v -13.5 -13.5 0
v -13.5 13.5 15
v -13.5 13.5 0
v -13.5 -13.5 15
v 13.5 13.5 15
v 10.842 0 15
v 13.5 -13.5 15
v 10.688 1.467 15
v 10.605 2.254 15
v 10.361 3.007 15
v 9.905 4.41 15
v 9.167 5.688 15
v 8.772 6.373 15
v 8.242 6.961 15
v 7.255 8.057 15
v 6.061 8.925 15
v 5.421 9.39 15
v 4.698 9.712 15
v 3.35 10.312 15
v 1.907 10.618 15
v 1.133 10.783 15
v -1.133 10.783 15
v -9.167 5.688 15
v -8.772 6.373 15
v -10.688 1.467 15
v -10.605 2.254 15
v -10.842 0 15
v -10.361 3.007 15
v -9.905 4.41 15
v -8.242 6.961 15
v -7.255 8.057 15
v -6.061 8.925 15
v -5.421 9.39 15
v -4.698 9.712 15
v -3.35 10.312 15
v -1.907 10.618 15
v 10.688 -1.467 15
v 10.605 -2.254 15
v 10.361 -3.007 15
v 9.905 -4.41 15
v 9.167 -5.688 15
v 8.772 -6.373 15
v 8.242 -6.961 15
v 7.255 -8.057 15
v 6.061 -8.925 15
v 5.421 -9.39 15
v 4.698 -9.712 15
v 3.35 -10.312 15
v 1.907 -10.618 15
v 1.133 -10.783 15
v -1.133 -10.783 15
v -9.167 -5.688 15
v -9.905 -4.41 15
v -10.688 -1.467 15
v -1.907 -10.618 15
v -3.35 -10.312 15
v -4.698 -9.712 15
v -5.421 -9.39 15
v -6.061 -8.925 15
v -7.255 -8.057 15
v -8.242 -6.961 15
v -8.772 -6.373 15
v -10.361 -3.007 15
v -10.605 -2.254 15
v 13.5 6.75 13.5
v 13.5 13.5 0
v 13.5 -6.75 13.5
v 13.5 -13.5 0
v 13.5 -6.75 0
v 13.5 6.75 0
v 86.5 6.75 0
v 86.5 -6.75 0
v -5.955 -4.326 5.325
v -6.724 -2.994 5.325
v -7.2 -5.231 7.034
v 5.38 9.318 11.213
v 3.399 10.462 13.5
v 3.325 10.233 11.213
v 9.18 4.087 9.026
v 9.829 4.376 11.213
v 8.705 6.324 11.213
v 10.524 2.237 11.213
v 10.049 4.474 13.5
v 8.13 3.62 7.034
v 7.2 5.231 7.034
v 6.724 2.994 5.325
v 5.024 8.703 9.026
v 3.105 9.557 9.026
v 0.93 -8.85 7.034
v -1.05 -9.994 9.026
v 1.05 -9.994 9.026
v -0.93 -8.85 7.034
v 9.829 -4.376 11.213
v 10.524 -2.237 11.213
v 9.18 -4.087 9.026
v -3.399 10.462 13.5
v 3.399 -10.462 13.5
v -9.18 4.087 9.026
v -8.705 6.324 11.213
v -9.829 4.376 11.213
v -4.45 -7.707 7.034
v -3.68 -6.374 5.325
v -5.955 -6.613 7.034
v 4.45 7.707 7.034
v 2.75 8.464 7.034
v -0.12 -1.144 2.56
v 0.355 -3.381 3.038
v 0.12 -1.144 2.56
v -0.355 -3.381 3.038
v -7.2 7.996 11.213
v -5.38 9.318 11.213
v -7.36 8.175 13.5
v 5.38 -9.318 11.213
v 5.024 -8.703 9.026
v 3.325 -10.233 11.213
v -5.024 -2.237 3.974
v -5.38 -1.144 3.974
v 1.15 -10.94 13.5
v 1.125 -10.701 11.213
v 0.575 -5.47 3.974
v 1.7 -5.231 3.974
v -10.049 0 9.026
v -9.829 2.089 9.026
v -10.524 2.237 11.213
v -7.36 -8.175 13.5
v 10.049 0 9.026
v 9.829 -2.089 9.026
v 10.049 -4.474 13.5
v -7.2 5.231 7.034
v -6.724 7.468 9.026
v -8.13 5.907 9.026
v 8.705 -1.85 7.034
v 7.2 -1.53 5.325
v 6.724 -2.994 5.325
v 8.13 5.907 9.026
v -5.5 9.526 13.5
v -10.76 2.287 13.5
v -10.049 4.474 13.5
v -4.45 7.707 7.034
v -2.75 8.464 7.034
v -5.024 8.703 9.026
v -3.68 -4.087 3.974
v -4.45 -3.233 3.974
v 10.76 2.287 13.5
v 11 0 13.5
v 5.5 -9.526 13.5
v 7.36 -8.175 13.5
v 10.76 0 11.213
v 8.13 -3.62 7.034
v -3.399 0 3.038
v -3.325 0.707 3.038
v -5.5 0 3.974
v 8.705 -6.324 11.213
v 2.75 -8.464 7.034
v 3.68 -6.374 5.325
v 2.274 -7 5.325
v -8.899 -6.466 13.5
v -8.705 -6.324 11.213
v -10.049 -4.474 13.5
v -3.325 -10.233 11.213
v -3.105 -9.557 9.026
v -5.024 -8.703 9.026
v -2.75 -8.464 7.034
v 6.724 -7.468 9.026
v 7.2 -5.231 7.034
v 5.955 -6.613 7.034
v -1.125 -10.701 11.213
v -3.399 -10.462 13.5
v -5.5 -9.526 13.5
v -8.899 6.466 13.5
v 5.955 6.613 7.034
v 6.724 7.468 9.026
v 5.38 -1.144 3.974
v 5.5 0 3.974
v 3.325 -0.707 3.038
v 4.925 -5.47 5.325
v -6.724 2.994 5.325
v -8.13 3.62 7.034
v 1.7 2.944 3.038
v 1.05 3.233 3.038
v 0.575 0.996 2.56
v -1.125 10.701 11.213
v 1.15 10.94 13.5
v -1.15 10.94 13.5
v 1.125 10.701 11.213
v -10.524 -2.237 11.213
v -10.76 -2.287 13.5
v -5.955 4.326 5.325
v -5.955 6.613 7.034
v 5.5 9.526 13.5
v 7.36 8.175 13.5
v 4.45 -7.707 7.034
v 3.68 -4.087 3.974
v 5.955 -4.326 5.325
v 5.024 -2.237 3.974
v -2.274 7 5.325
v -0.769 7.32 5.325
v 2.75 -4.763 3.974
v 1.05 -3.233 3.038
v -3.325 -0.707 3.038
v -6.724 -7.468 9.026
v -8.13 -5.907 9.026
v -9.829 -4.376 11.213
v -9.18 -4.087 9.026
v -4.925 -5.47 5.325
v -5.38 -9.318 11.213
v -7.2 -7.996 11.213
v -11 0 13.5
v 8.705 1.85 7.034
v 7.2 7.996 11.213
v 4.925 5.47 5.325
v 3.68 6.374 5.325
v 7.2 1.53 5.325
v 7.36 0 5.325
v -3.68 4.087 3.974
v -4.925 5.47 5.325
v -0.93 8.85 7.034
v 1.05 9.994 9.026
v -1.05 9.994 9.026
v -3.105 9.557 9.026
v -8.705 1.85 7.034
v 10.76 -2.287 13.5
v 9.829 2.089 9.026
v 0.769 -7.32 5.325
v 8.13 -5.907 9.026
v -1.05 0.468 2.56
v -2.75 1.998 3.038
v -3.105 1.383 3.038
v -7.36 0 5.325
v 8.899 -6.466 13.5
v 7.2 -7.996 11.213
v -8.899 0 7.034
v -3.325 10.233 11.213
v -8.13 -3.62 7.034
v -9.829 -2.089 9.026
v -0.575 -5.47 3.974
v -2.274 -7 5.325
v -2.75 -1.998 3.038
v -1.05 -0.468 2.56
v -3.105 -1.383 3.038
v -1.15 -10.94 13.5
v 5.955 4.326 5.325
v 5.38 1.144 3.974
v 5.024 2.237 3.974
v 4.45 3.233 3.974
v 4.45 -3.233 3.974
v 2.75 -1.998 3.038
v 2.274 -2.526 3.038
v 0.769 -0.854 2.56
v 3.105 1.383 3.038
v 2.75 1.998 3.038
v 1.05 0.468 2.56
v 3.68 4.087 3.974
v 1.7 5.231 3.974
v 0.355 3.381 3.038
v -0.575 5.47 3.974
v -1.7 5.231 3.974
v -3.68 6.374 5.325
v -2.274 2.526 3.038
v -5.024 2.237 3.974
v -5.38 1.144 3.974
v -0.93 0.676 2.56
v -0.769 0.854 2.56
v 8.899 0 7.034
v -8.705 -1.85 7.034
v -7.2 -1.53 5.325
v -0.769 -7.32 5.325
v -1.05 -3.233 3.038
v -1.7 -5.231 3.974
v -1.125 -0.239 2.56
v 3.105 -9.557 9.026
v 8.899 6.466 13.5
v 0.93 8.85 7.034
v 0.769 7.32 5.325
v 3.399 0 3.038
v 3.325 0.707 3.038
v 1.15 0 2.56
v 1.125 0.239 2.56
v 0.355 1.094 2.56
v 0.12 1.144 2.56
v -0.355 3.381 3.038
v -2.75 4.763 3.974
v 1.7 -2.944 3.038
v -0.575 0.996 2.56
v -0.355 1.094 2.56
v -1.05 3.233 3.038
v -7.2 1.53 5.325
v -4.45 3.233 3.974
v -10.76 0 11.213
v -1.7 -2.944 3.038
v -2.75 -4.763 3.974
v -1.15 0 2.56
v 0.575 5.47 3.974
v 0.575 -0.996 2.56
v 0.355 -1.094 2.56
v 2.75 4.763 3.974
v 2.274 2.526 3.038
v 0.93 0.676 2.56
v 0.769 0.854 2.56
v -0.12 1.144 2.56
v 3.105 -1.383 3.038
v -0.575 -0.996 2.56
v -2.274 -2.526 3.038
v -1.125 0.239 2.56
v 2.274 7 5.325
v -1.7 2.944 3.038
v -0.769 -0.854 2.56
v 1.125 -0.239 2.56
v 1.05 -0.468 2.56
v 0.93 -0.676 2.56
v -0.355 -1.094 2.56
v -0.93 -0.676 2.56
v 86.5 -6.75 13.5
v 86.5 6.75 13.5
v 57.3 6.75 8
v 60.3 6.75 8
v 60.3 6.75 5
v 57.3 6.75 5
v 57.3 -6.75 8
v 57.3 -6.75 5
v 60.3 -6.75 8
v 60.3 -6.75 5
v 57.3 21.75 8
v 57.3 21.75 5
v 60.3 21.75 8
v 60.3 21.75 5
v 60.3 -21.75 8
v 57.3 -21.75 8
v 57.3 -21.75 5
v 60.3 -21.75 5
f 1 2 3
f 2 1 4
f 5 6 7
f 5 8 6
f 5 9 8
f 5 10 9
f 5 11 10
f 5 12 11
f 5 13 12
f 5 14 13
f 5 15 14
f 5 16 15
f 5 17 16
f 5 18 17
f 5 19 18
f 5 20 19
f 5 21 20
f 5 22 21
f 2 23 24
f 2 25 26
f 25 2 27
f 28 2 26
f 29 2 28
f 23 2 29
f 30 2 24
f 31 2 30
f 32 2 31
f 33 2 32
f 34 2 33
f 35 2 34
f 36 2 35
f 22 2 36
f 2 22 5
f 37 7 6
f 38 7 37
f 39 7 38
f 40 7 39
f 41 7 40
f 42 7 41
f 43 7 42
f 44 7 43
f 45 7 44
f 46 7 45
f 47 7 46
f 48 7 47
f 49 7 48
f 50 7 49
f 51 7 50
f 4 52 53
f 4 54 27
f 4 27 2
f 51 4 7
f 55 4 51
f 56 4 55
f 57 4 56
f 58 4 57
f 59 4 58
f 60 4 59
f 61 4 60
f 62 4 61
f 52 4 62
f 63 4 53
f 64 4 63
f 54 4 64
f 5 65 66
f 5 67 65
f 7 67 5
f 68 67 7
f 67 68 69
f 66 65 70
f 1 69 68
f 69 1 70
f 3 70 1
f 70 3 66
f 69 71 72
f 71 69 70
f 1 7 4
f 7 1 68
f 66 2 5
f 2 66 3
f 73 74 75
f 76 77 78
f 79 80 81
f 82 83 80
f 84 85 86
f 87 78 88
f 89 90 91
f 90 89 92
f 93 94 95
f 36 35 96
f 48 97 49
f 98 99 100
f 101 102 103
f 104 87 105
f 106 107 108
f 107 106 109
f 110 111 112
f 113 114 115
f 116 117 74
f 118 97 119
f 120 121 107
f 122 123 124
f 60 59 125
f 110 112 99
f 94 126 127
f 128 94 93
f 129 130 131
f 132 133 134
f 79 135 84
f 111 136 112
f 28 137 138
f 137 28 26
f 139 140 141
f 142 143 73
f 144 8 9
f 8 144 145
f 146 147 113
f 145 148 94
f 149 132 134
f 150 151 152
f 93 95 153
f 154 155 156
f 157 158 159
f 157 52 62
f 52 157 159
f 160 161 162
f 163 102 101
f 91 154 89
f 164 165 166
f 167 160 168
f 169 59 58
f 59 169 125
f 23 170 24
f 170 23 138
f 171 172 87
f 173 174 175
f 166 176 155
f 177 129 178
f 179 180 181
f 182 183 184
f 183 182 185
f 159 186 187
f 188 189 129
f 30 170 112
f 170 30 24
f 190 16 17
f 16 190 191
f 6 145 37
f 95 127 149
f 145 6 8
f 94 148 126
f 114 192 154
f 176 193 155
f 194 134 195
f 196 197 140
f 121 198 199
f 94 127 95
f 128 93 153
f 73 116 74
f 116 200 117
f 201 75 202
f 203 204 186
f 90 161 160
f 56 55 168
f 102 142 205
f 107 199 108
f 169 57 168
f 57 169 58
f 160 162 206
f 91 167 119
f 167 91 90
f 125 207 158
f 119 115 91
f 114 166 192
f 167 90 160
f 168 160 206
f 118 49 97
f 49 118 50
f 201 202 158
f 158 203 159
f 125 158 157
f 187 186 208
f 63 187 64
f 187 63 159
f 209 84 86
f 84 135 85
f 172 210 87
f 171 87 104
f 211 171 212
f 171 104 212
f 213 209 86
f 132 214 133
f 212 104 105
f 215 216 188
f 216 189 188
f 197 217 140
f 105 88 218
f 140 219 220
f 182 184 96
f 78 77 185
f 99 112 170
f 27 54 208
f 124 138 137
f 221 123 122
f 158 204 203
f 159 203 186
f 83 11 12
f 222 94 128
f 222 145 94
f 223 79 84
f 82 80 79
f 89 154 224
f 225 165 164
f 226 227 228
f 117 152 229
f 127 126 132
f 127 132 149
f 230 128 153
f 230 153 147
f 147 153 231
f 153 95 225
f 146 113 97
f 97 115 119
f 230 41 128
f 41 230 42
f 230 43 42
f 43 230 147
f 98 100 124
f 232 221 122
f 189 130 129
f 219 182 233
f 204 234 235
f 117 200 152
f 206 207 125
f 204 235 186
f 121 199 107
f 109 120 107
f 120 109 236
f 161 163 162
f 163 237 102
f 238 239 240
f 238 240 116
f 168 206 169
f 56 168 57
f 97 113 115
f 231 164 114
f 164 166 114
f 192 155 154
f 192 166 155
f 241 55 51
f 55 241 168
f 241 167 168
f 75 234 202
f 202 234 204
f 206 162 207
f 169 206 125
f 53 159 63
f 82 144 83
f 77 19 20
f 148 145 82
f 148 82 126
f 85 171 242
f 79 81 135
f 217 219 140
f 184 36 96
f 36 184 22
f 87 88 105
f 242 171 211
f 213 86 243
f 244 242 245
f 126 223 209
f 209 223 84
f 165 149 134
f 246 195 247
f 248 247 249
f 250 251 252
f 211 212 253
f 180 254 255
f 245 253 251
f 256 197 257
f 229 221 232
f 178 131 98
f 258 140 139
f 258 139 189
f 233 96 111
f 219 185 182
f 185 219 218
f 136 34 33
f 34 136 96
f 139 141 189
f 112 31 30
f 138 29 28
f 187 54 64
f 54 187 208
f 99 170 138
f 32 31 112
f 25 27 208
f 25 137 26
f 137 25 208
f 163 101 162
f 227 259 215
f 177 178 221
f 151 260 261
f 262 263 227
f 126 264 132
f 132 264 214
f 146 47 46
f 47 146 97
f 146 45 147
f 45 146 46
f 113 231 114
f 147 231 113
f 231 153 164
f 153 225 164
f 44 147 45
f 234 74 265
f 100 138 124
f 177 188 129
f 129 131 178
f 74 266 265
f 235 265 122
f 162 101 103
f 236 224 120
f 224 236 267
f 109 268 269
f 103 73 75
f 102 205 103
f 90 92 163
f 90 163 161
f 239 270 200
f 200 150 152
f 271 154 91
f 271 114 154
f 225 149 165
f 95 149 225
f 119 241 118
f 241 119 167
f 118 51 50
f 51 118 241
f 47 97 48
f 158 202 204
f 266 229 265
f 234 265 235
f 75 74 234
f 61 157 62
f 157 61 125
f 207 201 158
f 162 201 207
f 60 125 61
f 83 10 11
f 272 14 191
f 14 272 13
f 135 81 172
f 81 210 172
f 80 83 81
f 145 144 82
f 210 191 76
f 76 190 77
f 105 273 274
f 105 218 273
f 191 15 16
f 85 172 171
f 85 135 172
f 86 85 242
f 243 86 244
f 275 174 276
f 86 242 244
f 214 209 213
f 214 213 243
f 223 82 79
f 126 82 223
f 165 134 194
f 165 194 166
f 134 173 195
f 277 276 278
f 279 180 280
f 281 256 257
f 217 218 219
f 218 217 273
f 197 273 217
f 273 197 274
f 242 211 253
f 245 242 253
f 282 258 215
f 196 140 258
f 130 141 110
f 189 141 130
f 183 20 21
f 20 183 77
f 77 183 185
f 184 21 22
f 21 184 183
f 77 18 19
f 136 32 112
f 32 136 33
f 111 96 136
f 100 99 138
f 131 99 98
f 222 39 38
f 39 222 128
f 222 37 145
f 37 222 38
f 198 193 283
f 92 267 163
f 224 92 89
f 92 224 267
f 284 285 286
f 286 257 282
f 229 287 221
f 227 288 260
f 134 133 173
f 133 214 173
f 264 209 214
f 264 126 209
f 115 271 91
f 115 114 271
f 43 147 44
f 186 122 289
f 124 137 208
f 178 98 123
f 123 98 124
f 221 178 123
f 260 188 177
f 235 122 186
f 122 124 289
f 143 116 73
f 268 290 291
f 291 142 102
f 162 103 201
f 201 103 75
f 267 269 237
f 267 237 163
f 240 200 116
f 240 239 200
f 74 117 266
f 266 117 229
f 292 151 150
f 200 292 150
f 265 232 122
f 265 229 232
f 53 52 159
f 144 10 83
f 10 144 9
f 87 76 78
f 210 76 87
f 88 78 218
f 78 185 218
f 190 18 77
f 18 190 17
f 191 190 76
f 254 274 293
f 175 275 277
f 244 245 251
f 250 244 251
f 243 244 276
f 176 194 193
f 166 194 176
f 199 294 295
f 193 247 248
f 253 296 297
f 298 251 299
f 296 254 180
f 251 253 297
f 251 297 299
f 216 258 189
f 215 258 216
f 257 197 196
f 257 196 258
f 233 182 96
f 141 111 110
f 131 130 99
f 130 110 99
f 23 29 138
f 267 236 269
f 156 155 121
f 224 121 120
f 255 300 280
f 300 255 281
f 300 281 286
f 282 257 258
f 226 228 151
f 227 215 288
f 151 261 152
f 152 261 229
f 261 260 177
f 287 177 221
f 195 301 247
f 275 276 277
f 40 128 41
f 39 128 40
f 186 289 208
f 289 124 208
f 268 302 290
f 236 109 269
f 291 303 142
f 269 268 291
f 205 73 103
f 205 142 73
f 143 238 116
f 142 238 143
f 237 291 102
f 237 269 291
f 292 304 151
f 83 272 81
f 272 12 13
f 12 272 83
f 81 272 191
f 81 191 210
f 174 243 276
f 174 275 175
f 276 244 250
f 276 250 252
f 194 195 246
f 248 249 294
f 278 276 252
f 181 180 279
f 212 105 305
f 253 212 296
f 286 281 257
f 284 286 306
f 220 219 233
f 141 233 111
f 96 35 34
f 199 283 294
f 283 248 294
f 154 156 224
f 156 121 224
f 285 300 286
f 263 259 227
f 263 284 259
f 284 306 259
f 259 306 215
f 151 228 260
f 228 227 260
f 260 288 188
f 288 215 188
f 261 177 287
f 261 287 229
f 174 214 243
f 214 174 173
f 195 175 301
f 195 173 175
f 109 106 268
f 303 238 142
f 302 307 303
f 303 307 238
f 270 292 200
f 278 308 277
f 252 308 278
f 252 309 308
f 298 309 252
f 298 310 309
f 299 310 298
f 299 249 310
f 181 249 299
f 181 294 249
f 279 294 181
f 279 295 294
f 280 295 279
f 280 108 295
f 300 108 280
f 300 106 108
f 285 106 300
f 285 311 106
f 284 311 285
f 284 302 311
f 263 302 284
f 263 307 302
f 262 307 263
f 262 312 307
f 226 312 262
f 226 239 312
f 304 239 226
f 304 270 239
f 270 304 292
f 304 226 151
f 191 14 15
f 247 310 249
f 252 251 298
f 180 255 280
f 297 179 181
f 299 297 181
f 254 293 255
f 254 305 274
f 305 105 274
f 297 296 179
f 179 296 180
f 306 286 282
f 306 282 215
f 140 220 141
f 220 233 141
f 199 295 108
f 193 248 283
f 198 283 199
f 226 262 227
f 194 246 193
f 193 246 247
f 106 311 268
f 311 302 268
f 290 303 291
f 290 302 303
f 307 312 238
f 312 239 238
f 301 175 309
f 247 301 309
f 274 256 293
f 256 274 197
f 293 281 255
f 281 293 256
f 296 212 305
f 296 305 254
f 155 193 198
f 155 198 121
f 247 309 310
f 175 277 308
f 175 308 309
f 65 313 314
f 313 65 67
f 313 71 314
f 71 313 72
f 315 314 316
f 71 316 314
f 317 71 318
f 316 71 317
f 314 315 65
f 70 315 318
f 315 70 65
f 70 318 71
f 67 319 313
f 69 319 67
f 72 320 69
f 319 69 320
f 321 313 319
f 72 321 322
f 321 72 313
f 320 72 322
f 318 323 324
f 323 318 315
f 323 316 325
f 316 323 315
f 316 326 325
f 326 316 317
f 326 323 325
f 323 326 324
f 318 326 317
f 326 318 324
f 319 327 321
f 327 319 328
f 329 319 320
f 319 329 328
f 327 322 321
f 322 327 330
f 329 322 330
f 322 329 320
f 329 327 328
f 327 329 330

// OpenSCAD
// file: config.scad
// general
part_width = 5;

entire_length = 100;

// parameters
arm_width = 27;
arm_inside_width =22;
arm_length = 100-arm_width; //length of the extension
arm_height = 10;

// space before and after
space_after = arm_length * 0.6; // btwn holder and axle
axle_width = 3;
axle_length = 15;

// sidebar
sidebar_bottom = entire_length - (arm_width + space_after + axle_width);
sidebar_height = sidebar_bottom + 10; // 10: is a constant
sidebar_width = 30;

holder_length = 5;

// torsion
torsion_diameter = 1;
torsion_rings = 4;
torsion_thickness = 1;
torsion_depth = part_width;
// main file
// Catapult Arm
// Rafi Khan

include <config.scad>;

union() {

	// payload holder
	translate([0, 0, part_width])
	difference() {
		translate([-arm_width/2, -arm_width/2, -part_width])
		cube([arm_width, arm_width, arm_height+part_width]);

		translate([0, 0, arm_width /2  - part_width])
		sphere(d=arm_inside_width);
	}

	// arm
	translate([arm_width/2, -arm_width/2/2, 0])
	union() {
		cube([arm_length, arm_width/2, arm_width/2]);
	}

	// axles
	translate([arm_width/2 + space_after, arm_width/2/2, 0]) {
		cube([axle_width, axle_length, axle_width]);
	}

	translate([arm_width/2 + space_after + axle_width, -arm_width/2/2, 0]) {
		rotate([0, 0, 180])
		cube([axle_width, axle_length, axle_width]);
	}
}
